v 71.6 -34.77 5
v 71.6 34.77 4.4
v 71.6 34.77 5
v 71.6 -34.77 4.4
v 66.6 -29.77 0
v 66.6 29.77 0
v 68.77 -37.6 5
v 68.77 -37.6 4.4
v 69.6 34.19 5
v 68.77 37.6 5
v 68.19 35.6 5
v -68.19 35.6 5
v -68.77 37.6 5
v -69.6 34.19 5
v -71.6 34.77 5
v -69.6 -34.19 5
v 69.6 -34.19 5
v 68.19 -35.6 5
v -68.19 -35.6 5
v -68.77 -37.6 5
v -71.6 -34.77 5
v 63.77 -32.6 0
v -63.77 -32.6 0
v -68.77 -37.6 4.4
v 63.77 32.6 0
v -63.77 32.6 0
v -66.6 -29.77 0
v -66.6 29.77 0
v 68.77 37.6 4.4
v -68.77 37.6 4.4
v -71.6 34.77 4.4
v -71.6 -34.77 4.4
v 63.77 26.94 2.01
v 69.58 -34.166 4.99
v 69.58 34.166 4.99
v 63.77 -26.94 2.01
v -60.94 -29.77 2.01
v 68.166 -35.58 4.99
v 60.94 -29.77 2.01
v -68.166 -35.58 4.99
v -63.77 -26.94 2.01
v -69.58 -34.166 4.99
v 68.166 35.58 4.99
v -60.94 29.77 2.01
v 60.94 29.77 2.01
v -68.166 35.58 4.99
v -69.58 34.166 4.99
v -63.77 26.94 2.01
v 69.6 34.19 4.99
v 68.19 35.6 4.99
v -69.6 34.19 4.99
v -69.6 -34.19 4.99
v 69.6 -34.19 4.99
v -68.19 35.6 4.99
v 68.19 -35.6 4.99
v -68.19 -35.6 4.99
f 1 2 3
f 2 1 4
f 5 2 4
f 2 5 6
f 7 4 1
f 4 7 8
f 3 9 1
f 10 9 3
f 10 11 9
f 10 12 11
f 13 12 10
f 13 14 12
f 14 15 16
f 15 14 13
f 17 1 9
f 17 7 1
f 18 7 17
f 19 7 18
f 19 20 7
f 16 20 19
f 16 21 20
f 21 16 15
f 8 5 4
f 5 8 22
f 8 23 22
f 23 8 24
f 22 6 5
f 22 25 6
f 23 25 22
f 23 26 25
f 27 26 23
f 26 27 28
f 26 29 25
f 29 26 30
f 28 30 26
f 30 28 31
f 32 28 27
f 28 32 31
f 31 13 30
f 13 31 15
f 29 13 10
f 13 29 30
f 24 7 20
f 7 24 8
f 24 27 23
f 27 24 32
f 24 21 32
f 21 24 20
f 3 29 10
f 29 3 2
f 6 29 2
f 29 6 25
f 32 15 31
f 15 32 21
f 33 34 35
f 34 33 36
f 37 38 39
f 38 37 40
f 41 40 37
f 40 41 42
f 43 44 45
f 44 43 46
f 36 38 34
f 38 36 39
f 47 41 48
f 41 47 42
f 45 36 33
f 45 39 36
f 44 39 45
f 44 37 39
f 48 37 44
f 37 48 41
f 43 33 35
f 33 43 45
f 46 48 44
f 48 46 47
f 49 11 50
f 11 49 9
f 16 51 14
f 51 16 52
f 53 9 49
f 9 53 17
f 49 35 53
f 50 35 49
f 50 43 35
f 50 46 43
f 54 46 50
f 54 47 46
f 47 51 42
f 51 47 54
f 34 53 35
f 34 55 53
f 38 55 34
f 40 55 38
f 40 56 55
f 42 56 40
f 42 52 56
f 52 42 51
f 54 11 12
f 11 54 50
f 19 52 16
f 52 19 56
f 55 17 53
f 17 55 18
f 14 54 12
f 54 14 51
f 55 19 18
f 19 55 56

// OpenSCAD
// Marsh repot liner — rebuilt from "Marsh repot - FIX flat rim setback.step"
// (two-body Fusion export, 2026-07-10) plus the user's section screenshots.
// Dimensions taken from per-body vertex extraction; see comments.
//
// TWO PARTS: set `part` to "pot", "tray", or "all" (assembly preview).
//
// v006: exact geometry from the two-body export.
//   - Wall taper is LINEAR rim-to-ground: outer 163.2x95.2 at Z0 to
//     185.5x117.5 at Z105 (skirt ring verts at Z=0: +-81.59 x +-47.59).
//     The v002-v005 bottom size (156x88) was a bad fit. Skirt is SOLID —
//     v005's skirt windows removed.
//   - Hex ring: band outline 123.2x55.2, 1.2mm wall, hanging from the
//     floor to just above the tray. 44 point-up hexagons (16 long side,
//     6 short side), 5.0 wide x 8.0 tall, 6.5 pitch, points at Z 4.4 and
//     12.4. Castellated bottom edge: 1.5mm notch under each hex.
//   - Drip tray: SEPARATE part. Plate 133.2 x 65.2 x 2 (2.83 corner
//     chamfer), rim flares to a 143.2 x 75.2 brim at Z5. Sits captive
//     under the band; 7mm ring gap to the skirt is the evaporation and
//     pour-out path.
//   - In the source file the band interpenetrates the tray plate by 2mm
//     (CAD interference); here the band stops 0.2mm above the tray floor
//     so the parts actually fit.
// v005: center tray + windowed ring (architecture right, details wrong).
// v004: 5x 8mm round drainage holes per horticultural guidance, kept.
// v002/v003: rim setback fix / open-tray rework (superseded).

part = "tray";   // "pot" | "tray" | "all"

$fn = 48;

// --- Shell: linear taper, ground to rim (per-body verts) ---
top_x   = 185.5;
top_y   = 117.5;
bot_x   = 163.2;   // skirt outer at Z=0 (+-81.59)
bot_y   = 95.2;    // (+-47.59)
height  = 105;
r_top   = 10.4;
r_bot   = 5;
wall    = 3;

// --- Rim: flat rim setback ---
rim_flat  = 1;
setback_h = 4;

// --- Pot floor (STEP: bottom face Z=19, top ~22) ---
floor_bot = 19;
floor_top = 22;

// Drainage: 5 round 8mm holes (v004 horticultural spec; the STEP floor
// face also carries 5 round holes).
hole_d   = 8;
hole_pos = [[0, 0], [38, 19], [-38, 19], [38, -19], [-38, -19]];

// --- Hex ring band (verts: outline +-61.59 x +-27.59, wall 1.0 in file,
//     1.2 here for printability; band bottom at tray_t + clearance) ---
band_x    = 123.2;
band_y    = 55.2;
band_wall = 1.2;
band_ch   = 3;       // corner chamfer
band_top  = 15;      // straight band top; 45deg shoulder to floor above
hex_w     = 5.0;     // hexagon width (flat-to-flat across mid corners)
hex_h     = 8.0;     // hexagon point-to-point height
hex_pitch = 6.5;
hex_cz    = 8.4;     // hexagon center height (points at 4.4 / 12.4)
n_hex_x   = 16;      // per long side
n_hex_y   = 6;       // per short side
notch_w   = 1.5;     // castellation under each hex
notch_h   = 1.5;
clearance = 0.2;     // band bottom to tray floor top

// --- Drip tray (separate part; verts exact) ---
tray_x    = 133.2;   // plate
tray_y    = 65.2;
tray_t    = 2;       // plate thickness
tray_ch   = 2.83;    // 45deg corner chamfer
brim_x    = 143.2;   // flared brim at Z5
brim_y    = 75.2;
brim_in_x = 139.2;   // brim top inner opening
brim_in_y = 71.2;
tray_h    = 5;

eps = 0.01;

band_bot = tray_t + clearance;

// Tapered rounded-rectangle shell: hull of four bottom and four top discs.
module shell(bx, by, tx, ty, h, rb, rt) {
    hull() {
        for (sx = [-1, 1], sy = [-1, 1]) {
            translate([sx*(bx/2 - rb), sy*(by/2 - rb), 0])
                cylinder(h = eps, r = rb);
            translate([sx*(tx/2 - rt), sy*(ty/2 - rt), h - eps])
                cylinder(h = eps, r = rt);
        }
    }
}

module rounded_box(x, y, h, r) {
    hull() for (sx = [-1, 1], sy = [-1, 1])
        translate([sx*(x/2 - r), sy*(y/2 - r), 0])
            cylinder(h = h, r = r);
}

// Rectangle with 45deg chamfered corners, extruded.
module hex_prism(x, y, h, ch) {
    linear_extrude(height = h)
        polygon([[-x/2 + ch, -y/2], [x/2 - ch, -y/2], [x/2, -y/2 + ch],
                 [x/2,  y/2 - ch], [x/2 - ch,  y/2], [-x/2 + ch,  y/2],
                 [-x/2,  y/2 - ch], [-x/2, -y/2 + ch]]);
}

// Point-up hexagon prism, for punching band holes. Long axis along `axis`.
module hex_hole(cx, cz, axis) {
    pts = [[0, cz - hex_h/2], [hex_w/2, cz - hex_h/2 + 2.5],
           [hex_w/2, cz + hex_h/2 - 2.5], [0, cz + hex_h/2],
           [-hex_w/2, cz + hex_h/2 - 2.5], [-hex_w/2, cz - hex_h/2 + 2.5]];
    if (axis == "x")
        translate([cx, 0, 0]) rotate([90, 0, 0])
            translate([0, 0, -band_y/2 - 2])
                linear_extrude(height = band_y + 4) polygon(pts);
    else
        translate([0, cx, 0]) rotate([90, 0, 90])
            translate([0, 0, -band_x/2 - 2])
                linear_extrude(height = band_x + 4) polygon(pts);
}

function ox(z) = bot_x + (top_x - bot_x) * z / height;
function oy(z) = bot_y + (top_y - bot_y) * z / height;

module rim_cutter() {
    ix_top = top_x - 2*rim_flat;
    iy_top = top_y - 2*rim_flat;
    ov = 1;
    translate([0, 0, height - setback_h])
        shell(ix_top - 2*setback_h, iy_top - 2*setback_h,
              ix_top + 2*ov, iy_top + 2*ov,
              setback_h + ov, r_top, r_top);
}

module cavity() {
    translate([0, 0, -eps])
        shell(bot_x - 2*wall, bot_y - 2*wall,
              top_x - 2*wall, top_y - 2*wall,
              height + 2*eps, r_bot, max(r_top - wall, 1));
}

// Drainage must drip inside the hex band footprint (so it lands on the
// tray, which is wider than the band). Checked against the band's inner
// faces including its corner chamfer.
band_in_x  = band_x/2 - band_wall;
band_in_y  = band_y/2 - band_wall;
function holes_in_band() =
    [for (p = hole_pos)
        assert(abs(p[0]) + hole_d/2 < band_in_x,
               str("hole at ", p, " outside hex band in X"))
        assert(abs(p[1]) + hole_d/2 < band_in_y,
               str("hole at ", p, " outside hex band in Y"))
        assert(abs(p[0]) + abs(p[1]) + hole_d/2 * 1.415
                 < band_in_x + band_in_y - band_ch,
               str("hole at ", p, " outside hex band corner chamfer"))
        p];

module pot() {
    difference() {
        union() {
            // Shell: solid skirt, ground to rim, linear taper.
            difference() {
                shell(bot_x, bot_y, top_x, top_y, height, r_bot, r_top);
                cavity();
            }
            // Floor.
            intersection() {
                cavity();
                translate([0, 0, floor_bot])
                    rounded_box(ox(floor_top), oy(floor_top),
                                floor_top - floor_bot, r_bot);
            }
            // Hex band: straight band, then 45deg shoulder up to the floor.
            difference() {
                union() {
                    translate([0, 0, band_bot])
                        hex_prism(band_x, band_y, band_top - band_bot, band_ch);
                    hull() {
                        translate([0, 0, band_top - eps])
                            hex_prism(band_x, band_y, eps, band_ch);
                        translate([0, 0, floor_bot])
                            hex_prism(band_x + 2*(floor_bot - band_top),
                                      band_y + 2*(floor_bot - band_top),
                                      eps, band_ch);
                    }
                }
                // Band interior (leave the shoulder solid ring's inside too).
                translate([0, 0, band_bot - eps])
                    hex_prism(band_x - 2*band_wall, band_y - 2*band_wall,
                              floor_bot - band_bot + 2*eps, band_ch);
                // Hexagon perforations.
                for (i = [0 : n_hex_x - 1])
                    hex_hole((i - (n_hex_x - 1)/2) * hex_pitch, hex_cz, "x");
                for (j = [0 : n_hex_y - 1])
                    hex_hole((j - (n_hex_y - 1)/2) * hex_pitch, hex_cz, "y");
                // Castellated bottom edge: notch under each hex.
                for (i = [0 : n_hex_x - 1])
                    translate([(i - (n_hex_x - 1)/2) * hex_pitch, 0,
                               band_bot + notch_h/2])
                        cube([notch_w, band_y + 4, notch_h + 2*eps],
                             center = true);
                for (j = [0 : n_hex_y - 1])
                    translate([0, (j - (n_hex_y - 1)/2) * hex_pitch,
                               band_bot + notch_h/2])
                        cube([band_x + 4, notch_w, notch_h + 2*eps],
                             center = true);
            }
        }

        // Drainage holes through the floor.
        for (p = holes_in_band())
            translate([p[0], p[1], (floor_bot + floor_top)/2])
                cylinder(h = floor_top - floor_bot + 2,
                         d = hole_d, center = true);

        rim_cutter();
    }
}

module tray() {
    difference() {
        // Plate + flare to the brim.
        hull() {
            hex_prism(tray_x, tray_y, tray_t, tray_ch);
            translate([0, 0, tray_h - 0.6])
                hex_prism(brim_x, brim_y, 0.6, tray_ch);
        }
        // Basin: funnel from the brim opening down to the plate top.
        hull() {
            translate([0, 0, tray_t + eps])
                hex_prism(tray_x - 2*tray_ch, tray_y - 2*tray_ch,
                          eps, tray_ch);
            translate([0, 0, tray_h])
                hex_prism(brim_in_x, brim_in_y, eps, 1.41);
        }
        // Open the basin through the brim plane.
        translate([0, 0, tray_h - eps])
            hex_prism(brim_in_x, brim_in_y, 2, 1.41);
    }
}

module main() {
    if (part == "pot" || part == "all") pot();
    if (part == "tray" || part == "all") tray();
}

if (is_list(holes_in_band())) main();
